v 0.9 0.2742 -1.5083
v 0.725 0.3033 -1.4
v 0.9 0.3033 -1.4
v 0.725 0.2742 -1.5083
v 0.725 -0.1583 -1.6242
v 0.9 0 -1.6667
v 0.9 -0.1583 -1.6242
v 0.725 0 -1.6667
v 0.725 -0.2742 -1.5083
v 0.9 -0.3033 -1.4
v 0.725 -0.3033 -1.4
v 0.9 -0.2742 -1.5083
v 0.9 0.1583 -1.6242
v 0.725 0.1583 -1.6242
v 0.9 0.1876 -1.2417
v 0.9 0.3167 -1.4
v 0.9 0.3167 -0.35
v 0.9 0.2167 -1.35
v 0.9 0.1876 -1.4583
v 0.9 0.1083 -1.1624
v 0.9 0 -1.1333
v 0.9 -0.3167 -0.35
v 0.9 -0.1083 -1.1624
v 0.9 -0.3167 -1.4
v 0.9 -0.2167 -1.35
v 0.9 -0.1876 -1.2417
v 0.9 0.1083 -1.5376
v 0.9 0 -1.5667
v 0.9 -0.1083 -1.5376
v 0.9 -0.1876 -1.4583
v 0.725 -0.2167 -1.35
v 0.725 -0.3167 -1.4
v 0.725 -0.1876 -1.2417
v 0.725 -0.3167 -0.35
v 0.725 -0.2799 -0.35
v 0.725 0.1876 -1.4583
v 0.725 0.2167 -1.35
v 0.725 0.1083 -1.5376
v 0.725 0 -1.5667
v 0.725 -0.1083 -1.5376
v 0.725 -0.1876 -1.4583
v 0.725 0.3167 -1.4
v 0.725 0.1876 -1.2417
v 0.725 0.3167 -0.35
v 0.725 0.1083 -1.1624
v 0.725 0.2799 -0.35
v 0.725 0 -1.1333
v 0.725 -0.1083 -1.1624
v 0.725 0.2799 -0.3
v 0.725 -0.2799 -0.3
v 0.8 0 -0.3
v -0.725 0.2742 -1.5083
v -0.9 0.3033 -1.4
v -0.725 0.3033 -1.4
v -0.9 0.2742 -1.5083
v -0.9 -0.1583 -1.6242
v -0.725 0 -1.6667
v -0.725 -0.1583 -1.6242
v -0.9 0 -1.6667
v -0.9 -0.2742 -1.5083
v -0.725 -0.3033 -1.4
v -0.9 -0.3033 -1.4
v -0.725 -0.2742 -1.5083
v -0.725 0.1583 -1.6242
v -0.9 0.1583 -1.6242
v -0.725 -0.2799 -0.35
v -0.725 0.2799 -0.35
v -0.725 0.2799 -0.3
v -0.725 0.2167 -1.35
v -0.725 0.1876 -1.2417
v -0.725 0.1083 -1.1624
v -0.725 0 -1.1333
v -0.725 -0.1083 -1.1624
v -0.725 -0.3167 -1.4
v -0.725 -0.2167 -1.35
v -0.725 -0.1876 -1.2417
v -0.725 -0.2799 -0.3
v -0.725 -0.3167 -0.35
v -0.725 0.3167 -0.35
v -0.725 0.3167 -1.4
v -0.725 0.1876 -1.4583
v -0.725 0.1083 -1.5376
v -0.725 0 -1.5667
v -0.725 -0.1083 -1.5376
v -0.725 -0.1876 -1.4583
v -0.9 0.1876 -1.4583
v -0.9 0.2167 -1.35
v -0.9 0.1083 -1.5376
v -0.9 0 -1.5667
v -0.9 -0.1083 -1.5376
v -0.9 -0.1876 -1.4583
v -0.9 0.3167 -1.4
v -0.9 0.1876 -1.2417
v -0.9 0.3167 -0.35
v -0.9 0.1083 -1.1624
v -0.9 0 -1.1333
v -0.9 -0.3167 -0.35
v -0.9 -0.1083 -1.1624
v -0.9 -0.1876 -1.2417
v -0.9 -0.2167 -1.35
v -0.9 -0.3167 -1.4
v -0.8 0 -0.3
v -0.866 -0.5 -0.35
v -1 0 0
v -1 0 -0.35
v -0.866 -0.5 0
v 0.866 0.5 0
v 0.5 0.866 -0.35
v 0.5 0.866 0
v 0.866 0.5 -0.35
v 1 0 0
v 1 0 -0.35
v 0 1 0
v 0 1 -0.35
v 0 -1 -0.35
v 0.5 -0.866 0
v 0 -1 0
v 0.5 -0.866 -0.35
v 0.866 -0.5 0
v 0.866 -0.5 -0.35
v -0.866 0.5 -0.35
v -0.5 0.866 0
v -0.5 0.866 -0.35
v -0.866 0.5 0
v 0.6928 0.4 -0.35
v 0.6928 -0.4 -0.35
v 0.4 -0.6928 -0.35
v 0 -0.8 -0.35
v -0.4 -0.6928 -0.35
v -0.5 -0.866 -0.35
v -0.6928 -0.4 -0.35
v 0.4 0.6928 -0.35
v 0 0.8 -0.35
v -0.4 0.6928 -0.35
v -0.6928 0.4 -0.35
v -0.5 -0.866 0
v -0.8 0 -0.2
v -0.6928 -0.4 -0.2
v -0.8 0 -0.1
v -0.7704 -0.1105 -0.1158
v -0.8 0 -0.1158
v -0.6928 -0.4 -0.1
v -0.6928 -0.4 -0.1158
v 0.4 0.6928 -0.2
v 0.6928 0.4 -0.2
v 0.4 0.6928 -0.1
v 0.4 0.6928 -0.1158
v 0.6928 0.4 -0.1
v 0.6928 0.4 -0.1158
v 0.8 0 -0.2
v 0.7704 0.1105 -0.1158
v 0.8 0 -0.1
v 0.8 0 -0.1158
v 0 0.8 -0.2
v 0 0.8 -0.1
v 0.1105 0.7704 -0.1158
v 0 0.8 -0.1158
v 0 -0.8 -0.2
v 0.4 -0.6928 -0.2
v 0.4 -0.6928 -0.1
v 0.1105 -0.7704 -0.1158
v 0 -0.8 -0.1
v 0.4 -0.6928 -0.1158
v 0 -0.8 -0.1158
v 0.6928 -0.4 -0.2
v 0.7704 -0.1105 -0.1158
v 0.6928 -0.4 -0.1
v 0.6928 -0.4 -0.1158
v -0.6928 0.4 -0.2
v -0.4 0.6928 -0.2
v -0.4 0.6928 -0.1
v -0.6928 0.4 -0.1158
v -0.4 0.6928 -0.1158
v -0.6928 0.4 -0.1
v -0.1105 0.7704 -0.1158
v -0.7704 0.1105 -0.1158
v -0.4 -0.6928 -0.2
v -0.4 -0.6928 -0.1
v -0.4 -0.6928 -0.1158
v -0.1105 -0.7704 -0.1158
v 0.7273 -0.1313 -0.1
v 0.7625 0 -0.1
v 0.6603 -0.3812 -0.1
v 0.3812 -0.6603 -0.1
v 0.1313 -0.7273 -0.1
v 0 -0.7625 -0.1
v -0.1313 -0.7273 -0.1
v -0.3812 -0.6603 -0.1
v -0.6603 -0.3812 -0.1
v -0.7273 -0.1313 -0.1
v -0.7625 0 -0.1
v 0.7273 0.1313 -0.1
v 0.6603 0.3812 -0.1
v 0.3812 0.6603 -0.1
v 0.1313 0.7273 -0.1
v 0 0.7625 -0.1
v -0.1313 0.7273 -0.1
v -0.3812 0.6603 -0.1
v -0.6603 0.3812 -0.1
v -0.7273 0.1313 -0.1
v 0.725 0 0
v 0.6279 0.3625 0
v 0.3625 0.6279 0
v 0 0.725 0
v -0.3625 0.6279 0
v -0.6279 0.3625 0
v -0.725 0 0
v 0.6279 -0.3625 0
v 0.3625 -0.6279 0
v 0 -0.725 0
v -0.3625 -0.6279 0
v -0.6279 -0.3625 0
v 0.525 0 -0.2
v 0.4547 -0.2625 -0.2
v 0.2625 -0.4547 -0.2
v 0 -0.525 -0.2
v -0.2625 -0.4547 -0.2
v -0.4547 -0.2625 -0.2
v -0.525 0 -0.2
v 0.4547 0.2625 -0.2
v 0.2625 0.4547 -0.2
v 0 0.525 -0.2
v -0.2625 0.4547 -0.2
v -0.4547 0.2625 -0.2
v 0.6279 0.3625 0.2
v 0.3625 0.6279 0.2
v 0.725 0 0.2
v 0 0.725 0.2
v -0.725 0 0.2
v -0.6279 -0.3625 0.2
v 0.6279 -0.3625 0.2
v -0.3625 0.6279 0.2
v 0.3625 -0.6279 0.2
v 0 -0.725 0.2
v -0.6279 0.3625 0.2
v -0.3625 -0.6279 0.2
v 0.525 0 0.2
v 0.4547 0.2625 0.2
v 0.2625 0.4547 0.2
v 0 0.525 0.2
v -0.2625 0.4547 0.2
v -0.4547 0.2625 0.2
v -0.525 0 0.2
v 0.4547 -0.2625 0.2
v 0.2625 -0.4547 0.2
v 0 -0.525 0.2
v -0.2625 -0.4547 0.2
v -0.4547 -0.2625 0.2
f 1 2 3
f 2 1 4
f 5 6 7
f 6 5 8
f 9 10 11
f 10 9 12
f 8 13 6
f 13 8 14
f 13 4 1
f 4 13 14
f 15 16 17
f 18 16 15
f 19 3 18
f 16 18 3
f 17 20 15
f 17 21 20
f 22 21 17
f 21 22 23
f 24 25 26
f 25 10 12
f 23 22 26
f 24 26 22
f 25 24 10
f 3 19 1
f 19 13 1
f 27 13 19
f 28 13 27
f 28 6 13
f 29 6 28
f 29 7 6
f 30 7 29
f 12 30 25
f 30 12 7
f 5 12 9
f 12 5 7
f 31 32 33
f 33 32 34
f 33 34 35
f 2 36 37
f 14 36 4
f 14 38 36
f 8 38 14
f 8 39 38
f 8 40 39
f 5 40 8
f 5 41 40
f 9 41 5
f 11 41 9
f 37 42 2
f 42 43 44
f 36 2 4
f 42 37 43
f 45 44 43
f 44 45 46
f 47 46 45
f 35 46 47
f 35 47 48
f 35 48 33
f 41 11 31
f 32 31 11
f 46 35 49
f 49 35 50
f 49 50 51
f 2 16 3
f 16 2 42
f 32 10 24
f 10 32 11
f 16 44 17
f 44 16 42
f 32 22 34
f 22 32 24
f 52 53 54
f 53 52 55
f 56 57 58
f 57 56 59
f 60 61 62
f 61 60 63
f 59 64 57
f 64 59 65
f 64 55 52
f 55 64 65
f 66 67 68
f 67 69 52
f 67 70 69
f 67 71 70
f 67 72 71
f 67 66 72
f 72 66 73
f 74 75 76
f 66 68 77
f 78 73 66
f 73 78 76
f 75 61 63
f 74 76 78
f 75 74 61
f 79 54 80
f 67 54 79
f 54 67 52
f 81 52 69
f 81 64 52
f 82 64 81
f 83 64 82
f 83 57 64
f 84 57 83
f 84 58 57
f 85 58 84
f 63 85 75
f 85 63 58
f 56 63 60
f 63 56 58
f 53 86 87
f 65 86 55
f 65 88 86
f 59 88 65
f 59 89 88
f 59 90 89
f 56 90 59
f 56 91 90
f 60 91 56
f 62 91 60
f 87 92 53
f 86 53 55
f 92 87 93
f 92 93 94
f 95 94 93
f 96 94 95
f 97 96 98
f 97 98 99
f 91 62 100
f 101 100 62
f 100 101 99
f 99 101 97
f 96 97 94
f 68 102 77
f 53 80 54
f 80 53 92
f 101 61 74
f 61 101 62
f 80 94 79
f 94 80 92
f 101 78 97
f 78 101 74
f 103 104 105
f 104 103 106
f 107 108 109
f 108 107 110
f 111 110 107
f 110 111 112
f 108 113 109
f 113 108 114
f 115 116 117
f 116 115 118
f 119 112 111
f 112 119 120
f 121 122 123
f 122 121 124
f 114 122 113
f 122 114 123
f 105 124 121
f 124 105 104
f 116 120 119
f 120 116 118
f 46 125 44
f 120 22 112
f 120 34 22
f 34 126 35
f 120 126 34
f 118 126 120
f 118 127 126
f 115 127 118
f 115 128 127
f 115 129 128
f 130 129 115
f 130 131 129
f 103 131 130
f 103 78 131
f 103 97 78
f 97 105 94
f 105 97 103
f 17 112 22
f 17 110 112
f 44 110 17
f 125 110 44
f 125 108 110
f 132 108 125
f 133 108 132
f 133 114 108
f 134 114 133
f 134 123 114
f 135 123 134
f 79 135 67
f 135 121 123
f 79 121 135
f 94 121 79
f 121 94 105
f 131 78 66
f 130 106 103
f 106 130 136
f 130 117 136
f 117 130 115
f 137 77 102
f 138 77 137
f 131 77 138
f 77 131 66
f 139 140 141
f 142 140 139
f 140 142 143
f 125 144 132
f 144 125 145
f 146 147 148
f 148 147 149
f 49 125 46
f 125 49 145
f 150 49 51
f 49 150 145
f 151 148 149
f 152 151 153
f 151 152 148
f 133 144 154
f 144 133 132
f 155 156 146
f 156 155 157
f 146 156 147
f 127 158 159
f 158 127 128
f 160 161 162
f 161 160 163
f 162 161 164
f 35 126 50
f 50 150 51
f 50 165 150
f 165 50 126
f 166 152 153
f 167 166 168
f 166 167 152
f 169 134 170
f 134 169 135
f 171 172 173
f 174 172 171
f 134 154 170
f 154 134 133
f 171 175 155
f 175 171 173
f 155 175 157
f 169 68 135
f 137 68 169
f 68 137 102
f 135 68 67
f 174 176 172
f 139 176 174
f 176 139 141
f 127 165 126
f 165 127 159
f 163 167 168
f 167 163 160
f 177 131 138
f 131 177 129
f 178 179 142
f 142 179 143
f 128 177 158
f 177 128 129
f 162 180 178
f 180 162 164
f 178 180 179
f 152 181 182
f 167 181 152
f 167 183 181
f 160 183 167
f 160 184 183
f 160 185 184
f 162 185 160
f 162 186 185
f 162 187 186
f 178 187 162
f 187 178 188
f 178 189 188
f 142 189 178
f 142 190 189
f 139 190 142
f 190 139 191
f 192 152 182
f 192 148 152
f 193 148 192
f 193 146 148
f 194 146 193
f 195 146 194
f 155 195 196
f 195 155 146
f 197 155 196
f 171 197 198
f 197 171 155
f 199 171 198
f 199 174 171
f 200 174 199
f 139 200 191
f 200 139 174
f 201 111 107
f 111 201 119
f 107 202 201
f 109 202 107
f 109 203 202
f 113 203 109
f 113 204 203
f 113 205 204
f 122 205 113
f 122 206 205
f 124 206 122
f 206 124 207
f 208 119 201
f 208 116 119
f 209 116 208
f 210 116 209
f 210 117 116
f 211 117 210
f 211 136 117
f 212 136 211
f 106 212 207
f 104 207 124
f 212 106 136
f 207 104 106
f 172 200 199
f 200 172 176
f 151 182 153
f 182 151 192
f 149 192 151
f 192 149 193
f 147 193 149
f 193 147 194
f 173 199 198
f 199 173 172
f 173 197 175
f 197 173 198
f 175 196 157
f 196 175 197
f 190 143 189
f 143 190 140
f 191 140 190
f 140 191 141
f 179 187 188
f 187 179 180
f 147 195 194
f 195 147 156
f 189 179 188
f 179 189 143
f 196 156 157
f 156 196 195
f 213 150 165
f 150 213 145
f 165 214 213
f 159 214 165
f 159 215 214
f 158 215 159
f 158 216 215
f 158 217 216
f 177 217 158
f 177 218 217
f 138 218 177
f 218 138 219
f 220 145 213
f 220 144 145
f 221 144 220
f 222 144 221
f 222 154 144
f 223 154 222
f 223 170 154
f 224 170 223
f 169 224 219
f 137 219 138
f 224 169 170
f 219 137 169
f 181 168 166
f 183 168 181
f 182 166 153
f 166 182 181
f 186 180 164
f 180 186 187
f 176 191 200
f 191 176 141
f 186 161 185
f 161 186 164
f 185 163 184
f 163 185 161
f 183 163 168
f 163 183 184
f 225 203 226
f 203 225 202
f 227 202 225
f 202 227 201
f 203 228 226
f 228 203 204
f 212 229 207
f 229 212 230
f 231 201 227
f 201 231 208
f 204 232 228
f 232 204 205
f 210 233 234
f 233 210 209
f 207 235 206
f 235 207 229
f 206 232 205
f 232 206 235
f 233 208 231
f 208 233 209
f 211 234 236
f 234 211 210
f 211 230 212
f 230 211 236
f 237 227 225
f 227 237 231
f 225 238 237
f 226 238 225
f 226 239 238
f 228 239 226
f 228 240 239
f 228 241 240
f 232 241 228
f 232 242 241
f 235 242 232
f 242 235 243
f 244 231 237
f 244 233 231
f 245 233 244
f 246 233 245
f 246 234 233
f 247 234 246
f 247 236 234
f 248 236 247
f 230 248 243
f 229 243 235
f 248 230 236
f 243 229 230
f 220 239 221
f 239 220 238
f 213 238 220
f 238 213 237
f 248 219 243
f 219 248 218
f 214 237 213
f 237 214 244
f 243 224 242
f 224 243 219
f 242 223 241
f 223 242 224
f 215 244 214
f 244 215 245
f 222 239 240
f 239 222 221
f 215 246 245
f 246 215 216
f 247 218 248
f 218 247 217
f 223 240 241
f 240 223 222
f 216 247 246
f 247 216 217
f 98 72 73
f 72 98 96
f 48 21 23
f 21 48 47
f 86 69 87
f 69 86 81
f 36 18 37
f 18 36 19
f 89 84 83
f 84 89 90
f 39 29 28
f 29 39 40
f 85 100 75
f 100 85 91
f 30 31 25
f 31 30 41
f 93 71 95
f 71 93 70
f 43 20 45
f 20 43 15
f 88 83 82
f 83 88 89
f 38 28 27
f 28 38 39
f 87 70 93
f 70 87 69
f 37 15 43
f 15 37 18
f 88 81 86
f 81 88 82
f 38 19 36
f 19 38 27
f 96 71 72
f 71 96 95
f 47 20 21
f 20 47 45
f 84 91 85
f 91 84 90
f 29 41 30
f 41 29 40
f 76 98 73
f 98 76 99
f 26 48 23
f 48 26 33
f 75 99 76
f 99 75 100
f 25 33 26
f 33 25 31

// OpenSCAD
tolerance=0.075;
hole_radius=0.05;
grid_hole_radius=0.05;
outer_radius=1;
thickness=0.2;
hole_attach_height=0.05;
attach_thickness=0.1;
bottom_rotation_height=1.625;
top_rotation_height=1.35;
next_hole_radius=0.05;
next_hole_attach_height=0.05;
next_inner=0.8;
max_turn=90.0;
min_turn=90.0;
hole_twist=0.0;

//parameters that don't have to be defined explicitly
eps = tolerance/100;
inner_radius = outer_radius - thickness;
axle_offset = attach_thickness;
bottom_joint_attach_radius = outer_radius - hole_attach_height - grid_hole_radius*2 - thickness;
fn = 12;
fnh = 6;

//solve for b = axle height
max_turn_b = outer_radius / tan((180 - max_turn)/2);
min_turn_b = outer_radius / tan((180 - min_turn)/2);
axle_radius = bottom_joint_attach_radius/3;

grid_hole_height = hole_radius*2 + hole_attach_height * 2;
bottom_joint_grid_clearance = bottom_rotation_height - (hole_attach_height*2 + hole_radius*2 + grid_hole_height + max_turn_b + attach_thickness);

module angled_cylinder(angle_deg_y, _h, _r, angle_deg_x = 0) {
    rotate([angle_deg_x, angle_deg_y, 0]) { // Rotate the cylinder 
            cylinder(h = _h, r = _r, center = true, $fn = fnh);
        }
}

module joint_top() {
    operating_height = hole_attach_height*2 + attach_thickness + hole_radius*2 + grid_hole_height + bottom_joint_grid_clearance + max_turn_b;
    
    top_attach_height = axle_offset + axle_radius + max_turn_b;
    cyl_height = top_rotation_height - max_turn_b;

    difference() {
        translate([0,0, operating_height]) 
        difference() {
            union() {
                translate([0,0,- axle_radius - axle_offset + top_attach_height/2]) 
                {
                    
                    //attach points
                    axle_attach_thickness = outer_radius - thickness/2 - bottom_joint_attach_radius - tolerance ;
                    
                    attach_distance = bottom_joint_attach_radius + axle_attach_thickness/2 + tolerance;

                    translate([attach_distance, 0, 0]) {
                        translate([0,0,-top_attach_height/2 + axle_radius + axle_offset])
                        rotate([0,90,0])
                        cylinder(h=axle_attach_thickness,r=axle_radius + axle_offset,center=true, $fn = fn);
                        translate([0,0,(axle_radius + axle_offset)/2])
                    cube([axle_attach_thickness, (axle_radius + axle_offset)*2, top_attach_height - axle_offset - axle_radius + attach_thickness],center=true);
                    }
                    
                    translate([-attach_distance, 0, 0]) {
                        translate([0,0,-top_attach_height/2 + axle_radius + axle_offset])
                        rotate([0,90,0])
                        cylinder(h=axle_attach_thickness,r=axle_radius + axle_offset,center=true, $fn = fn);
                        translate([0,0,(axle_radius + axle_offset)/2])
                    cube([axle_attach_thickness, (axle_radius + axle_offset)*2, top_attach_height - axle_offset - axle_radius + attach_thickness],center=true);
                    }  
                    
                    //outer cylinder
                    translate([0,0,top_attach_height/2]) {
                        difference() {
                            cylinder(h=cyl_height,r=outer_radius,$fn=fn);
                            translate([0,0,-eps/2])
                            cylinder(h=cyl_height + eps,r=inner_radius,$fn=fn);
                        }
                        
                        //enforce min turn
                        translate([0,0,-(max_turn_b - min_turn_b)])
                        difference() {
                            cylinder(h=max_turn_b - min_turn_b,r=outer_radius,$fn=fn);
                            
                            translate([-outer_radius,-outer_radius,-eps/2])
                            cube([outer_radius*2,outer_radius - axle_radius - axle_offset + eps/2,max_turn_b - min_turn_b + eps]);
                            
                            translate([0,0,-eps/2])
                            cylinder(h=max_turn_b - min_turn_b + eps,r=inner_radius,$fn=fn);
                       }
                    }       
                } 
                
                
                //attachment segment
                translate([0,0,cyl_height + max_turn_b])
                difference() {
                        union() {
                            //attachment for smaller cylinder
                            translate([0,0,-attach_thickness])
                            cylinder(h=attach_thickness, r=outer_radius, $fn=fn);
                            translate([0,0,-attach_thickness*2])
                            cylinder(h=attach_thickness*2, r1=outer_radius, r2=next_inner - tolerance - thickness, $fn=fn);
                            
                            //small cylinder
                            cylinder(h=next_hole_radius*2 + next_hole_attach_height * 2, r = next_inner - tolerance, $fn=fn);
                        }
                        
                        //shelling
                        translate([0,0, -attach_thickness*2 - eps/2])
                        cylinder(h=next_hole_radius*2 + next_hole_attach_height * 2 + attach_thickness*2 + eps, r = min(inner_radius, next_inner - tolerance - thickness), $fn=fn);
                        
                        //holes for screws
//                        translate([0,0,next_hole_attach_height + next_hole_radius]) {
//                            angled_cylinder(0, (next_inner + thickness + eps) * 2,  next_hole_radius, 90);
//                            angled_cylinder(90, (next_inner + thickness + eps) * 2, next_hole_radius, 0);
//                        }
                    }

            }
            
            //holes for string routing
//             translate([0,-inner_radius + tolerance,max_turn_b]) 
//            rotate([90,0,0])
//            {
//                cylinder(h=thickness + inner_radius + tolerance,r=grid_hole_radius,$fn=fn);
//                translate([0,hole_attach_height + grid_hole_radius*2,0])
//                cylinder(h=thickness + inner_radius + tolerance,r=grid_hole_radius,$fn=fn);
//
//            }
//
//            translate([0,outer_radius + tolerance,min_turn_b])
//            rotate([90,0,0])
//            {
//                cylinder(h=thickness + inner_radius + tolerance,r=grid_hole_radius,$fn=fn);
//                translate([0,hole_attach_height + grid_hole_radius*2,0])
//                cylinder(h=thickness + inner_radius + tolerance,r=grid_hole_radius,$fn=fn);
//
//            }
             

        }

        //axle hole
        translate([0,0,operating_height])
        rotate([0,90,0])
        cylinder(h=outer_radius*2,r=axle_radius,center=true,$fn=fn);
        
    }
}

translate([0,0,-(bottom_rotation_height + top_rotation_height)])
joint_top();
